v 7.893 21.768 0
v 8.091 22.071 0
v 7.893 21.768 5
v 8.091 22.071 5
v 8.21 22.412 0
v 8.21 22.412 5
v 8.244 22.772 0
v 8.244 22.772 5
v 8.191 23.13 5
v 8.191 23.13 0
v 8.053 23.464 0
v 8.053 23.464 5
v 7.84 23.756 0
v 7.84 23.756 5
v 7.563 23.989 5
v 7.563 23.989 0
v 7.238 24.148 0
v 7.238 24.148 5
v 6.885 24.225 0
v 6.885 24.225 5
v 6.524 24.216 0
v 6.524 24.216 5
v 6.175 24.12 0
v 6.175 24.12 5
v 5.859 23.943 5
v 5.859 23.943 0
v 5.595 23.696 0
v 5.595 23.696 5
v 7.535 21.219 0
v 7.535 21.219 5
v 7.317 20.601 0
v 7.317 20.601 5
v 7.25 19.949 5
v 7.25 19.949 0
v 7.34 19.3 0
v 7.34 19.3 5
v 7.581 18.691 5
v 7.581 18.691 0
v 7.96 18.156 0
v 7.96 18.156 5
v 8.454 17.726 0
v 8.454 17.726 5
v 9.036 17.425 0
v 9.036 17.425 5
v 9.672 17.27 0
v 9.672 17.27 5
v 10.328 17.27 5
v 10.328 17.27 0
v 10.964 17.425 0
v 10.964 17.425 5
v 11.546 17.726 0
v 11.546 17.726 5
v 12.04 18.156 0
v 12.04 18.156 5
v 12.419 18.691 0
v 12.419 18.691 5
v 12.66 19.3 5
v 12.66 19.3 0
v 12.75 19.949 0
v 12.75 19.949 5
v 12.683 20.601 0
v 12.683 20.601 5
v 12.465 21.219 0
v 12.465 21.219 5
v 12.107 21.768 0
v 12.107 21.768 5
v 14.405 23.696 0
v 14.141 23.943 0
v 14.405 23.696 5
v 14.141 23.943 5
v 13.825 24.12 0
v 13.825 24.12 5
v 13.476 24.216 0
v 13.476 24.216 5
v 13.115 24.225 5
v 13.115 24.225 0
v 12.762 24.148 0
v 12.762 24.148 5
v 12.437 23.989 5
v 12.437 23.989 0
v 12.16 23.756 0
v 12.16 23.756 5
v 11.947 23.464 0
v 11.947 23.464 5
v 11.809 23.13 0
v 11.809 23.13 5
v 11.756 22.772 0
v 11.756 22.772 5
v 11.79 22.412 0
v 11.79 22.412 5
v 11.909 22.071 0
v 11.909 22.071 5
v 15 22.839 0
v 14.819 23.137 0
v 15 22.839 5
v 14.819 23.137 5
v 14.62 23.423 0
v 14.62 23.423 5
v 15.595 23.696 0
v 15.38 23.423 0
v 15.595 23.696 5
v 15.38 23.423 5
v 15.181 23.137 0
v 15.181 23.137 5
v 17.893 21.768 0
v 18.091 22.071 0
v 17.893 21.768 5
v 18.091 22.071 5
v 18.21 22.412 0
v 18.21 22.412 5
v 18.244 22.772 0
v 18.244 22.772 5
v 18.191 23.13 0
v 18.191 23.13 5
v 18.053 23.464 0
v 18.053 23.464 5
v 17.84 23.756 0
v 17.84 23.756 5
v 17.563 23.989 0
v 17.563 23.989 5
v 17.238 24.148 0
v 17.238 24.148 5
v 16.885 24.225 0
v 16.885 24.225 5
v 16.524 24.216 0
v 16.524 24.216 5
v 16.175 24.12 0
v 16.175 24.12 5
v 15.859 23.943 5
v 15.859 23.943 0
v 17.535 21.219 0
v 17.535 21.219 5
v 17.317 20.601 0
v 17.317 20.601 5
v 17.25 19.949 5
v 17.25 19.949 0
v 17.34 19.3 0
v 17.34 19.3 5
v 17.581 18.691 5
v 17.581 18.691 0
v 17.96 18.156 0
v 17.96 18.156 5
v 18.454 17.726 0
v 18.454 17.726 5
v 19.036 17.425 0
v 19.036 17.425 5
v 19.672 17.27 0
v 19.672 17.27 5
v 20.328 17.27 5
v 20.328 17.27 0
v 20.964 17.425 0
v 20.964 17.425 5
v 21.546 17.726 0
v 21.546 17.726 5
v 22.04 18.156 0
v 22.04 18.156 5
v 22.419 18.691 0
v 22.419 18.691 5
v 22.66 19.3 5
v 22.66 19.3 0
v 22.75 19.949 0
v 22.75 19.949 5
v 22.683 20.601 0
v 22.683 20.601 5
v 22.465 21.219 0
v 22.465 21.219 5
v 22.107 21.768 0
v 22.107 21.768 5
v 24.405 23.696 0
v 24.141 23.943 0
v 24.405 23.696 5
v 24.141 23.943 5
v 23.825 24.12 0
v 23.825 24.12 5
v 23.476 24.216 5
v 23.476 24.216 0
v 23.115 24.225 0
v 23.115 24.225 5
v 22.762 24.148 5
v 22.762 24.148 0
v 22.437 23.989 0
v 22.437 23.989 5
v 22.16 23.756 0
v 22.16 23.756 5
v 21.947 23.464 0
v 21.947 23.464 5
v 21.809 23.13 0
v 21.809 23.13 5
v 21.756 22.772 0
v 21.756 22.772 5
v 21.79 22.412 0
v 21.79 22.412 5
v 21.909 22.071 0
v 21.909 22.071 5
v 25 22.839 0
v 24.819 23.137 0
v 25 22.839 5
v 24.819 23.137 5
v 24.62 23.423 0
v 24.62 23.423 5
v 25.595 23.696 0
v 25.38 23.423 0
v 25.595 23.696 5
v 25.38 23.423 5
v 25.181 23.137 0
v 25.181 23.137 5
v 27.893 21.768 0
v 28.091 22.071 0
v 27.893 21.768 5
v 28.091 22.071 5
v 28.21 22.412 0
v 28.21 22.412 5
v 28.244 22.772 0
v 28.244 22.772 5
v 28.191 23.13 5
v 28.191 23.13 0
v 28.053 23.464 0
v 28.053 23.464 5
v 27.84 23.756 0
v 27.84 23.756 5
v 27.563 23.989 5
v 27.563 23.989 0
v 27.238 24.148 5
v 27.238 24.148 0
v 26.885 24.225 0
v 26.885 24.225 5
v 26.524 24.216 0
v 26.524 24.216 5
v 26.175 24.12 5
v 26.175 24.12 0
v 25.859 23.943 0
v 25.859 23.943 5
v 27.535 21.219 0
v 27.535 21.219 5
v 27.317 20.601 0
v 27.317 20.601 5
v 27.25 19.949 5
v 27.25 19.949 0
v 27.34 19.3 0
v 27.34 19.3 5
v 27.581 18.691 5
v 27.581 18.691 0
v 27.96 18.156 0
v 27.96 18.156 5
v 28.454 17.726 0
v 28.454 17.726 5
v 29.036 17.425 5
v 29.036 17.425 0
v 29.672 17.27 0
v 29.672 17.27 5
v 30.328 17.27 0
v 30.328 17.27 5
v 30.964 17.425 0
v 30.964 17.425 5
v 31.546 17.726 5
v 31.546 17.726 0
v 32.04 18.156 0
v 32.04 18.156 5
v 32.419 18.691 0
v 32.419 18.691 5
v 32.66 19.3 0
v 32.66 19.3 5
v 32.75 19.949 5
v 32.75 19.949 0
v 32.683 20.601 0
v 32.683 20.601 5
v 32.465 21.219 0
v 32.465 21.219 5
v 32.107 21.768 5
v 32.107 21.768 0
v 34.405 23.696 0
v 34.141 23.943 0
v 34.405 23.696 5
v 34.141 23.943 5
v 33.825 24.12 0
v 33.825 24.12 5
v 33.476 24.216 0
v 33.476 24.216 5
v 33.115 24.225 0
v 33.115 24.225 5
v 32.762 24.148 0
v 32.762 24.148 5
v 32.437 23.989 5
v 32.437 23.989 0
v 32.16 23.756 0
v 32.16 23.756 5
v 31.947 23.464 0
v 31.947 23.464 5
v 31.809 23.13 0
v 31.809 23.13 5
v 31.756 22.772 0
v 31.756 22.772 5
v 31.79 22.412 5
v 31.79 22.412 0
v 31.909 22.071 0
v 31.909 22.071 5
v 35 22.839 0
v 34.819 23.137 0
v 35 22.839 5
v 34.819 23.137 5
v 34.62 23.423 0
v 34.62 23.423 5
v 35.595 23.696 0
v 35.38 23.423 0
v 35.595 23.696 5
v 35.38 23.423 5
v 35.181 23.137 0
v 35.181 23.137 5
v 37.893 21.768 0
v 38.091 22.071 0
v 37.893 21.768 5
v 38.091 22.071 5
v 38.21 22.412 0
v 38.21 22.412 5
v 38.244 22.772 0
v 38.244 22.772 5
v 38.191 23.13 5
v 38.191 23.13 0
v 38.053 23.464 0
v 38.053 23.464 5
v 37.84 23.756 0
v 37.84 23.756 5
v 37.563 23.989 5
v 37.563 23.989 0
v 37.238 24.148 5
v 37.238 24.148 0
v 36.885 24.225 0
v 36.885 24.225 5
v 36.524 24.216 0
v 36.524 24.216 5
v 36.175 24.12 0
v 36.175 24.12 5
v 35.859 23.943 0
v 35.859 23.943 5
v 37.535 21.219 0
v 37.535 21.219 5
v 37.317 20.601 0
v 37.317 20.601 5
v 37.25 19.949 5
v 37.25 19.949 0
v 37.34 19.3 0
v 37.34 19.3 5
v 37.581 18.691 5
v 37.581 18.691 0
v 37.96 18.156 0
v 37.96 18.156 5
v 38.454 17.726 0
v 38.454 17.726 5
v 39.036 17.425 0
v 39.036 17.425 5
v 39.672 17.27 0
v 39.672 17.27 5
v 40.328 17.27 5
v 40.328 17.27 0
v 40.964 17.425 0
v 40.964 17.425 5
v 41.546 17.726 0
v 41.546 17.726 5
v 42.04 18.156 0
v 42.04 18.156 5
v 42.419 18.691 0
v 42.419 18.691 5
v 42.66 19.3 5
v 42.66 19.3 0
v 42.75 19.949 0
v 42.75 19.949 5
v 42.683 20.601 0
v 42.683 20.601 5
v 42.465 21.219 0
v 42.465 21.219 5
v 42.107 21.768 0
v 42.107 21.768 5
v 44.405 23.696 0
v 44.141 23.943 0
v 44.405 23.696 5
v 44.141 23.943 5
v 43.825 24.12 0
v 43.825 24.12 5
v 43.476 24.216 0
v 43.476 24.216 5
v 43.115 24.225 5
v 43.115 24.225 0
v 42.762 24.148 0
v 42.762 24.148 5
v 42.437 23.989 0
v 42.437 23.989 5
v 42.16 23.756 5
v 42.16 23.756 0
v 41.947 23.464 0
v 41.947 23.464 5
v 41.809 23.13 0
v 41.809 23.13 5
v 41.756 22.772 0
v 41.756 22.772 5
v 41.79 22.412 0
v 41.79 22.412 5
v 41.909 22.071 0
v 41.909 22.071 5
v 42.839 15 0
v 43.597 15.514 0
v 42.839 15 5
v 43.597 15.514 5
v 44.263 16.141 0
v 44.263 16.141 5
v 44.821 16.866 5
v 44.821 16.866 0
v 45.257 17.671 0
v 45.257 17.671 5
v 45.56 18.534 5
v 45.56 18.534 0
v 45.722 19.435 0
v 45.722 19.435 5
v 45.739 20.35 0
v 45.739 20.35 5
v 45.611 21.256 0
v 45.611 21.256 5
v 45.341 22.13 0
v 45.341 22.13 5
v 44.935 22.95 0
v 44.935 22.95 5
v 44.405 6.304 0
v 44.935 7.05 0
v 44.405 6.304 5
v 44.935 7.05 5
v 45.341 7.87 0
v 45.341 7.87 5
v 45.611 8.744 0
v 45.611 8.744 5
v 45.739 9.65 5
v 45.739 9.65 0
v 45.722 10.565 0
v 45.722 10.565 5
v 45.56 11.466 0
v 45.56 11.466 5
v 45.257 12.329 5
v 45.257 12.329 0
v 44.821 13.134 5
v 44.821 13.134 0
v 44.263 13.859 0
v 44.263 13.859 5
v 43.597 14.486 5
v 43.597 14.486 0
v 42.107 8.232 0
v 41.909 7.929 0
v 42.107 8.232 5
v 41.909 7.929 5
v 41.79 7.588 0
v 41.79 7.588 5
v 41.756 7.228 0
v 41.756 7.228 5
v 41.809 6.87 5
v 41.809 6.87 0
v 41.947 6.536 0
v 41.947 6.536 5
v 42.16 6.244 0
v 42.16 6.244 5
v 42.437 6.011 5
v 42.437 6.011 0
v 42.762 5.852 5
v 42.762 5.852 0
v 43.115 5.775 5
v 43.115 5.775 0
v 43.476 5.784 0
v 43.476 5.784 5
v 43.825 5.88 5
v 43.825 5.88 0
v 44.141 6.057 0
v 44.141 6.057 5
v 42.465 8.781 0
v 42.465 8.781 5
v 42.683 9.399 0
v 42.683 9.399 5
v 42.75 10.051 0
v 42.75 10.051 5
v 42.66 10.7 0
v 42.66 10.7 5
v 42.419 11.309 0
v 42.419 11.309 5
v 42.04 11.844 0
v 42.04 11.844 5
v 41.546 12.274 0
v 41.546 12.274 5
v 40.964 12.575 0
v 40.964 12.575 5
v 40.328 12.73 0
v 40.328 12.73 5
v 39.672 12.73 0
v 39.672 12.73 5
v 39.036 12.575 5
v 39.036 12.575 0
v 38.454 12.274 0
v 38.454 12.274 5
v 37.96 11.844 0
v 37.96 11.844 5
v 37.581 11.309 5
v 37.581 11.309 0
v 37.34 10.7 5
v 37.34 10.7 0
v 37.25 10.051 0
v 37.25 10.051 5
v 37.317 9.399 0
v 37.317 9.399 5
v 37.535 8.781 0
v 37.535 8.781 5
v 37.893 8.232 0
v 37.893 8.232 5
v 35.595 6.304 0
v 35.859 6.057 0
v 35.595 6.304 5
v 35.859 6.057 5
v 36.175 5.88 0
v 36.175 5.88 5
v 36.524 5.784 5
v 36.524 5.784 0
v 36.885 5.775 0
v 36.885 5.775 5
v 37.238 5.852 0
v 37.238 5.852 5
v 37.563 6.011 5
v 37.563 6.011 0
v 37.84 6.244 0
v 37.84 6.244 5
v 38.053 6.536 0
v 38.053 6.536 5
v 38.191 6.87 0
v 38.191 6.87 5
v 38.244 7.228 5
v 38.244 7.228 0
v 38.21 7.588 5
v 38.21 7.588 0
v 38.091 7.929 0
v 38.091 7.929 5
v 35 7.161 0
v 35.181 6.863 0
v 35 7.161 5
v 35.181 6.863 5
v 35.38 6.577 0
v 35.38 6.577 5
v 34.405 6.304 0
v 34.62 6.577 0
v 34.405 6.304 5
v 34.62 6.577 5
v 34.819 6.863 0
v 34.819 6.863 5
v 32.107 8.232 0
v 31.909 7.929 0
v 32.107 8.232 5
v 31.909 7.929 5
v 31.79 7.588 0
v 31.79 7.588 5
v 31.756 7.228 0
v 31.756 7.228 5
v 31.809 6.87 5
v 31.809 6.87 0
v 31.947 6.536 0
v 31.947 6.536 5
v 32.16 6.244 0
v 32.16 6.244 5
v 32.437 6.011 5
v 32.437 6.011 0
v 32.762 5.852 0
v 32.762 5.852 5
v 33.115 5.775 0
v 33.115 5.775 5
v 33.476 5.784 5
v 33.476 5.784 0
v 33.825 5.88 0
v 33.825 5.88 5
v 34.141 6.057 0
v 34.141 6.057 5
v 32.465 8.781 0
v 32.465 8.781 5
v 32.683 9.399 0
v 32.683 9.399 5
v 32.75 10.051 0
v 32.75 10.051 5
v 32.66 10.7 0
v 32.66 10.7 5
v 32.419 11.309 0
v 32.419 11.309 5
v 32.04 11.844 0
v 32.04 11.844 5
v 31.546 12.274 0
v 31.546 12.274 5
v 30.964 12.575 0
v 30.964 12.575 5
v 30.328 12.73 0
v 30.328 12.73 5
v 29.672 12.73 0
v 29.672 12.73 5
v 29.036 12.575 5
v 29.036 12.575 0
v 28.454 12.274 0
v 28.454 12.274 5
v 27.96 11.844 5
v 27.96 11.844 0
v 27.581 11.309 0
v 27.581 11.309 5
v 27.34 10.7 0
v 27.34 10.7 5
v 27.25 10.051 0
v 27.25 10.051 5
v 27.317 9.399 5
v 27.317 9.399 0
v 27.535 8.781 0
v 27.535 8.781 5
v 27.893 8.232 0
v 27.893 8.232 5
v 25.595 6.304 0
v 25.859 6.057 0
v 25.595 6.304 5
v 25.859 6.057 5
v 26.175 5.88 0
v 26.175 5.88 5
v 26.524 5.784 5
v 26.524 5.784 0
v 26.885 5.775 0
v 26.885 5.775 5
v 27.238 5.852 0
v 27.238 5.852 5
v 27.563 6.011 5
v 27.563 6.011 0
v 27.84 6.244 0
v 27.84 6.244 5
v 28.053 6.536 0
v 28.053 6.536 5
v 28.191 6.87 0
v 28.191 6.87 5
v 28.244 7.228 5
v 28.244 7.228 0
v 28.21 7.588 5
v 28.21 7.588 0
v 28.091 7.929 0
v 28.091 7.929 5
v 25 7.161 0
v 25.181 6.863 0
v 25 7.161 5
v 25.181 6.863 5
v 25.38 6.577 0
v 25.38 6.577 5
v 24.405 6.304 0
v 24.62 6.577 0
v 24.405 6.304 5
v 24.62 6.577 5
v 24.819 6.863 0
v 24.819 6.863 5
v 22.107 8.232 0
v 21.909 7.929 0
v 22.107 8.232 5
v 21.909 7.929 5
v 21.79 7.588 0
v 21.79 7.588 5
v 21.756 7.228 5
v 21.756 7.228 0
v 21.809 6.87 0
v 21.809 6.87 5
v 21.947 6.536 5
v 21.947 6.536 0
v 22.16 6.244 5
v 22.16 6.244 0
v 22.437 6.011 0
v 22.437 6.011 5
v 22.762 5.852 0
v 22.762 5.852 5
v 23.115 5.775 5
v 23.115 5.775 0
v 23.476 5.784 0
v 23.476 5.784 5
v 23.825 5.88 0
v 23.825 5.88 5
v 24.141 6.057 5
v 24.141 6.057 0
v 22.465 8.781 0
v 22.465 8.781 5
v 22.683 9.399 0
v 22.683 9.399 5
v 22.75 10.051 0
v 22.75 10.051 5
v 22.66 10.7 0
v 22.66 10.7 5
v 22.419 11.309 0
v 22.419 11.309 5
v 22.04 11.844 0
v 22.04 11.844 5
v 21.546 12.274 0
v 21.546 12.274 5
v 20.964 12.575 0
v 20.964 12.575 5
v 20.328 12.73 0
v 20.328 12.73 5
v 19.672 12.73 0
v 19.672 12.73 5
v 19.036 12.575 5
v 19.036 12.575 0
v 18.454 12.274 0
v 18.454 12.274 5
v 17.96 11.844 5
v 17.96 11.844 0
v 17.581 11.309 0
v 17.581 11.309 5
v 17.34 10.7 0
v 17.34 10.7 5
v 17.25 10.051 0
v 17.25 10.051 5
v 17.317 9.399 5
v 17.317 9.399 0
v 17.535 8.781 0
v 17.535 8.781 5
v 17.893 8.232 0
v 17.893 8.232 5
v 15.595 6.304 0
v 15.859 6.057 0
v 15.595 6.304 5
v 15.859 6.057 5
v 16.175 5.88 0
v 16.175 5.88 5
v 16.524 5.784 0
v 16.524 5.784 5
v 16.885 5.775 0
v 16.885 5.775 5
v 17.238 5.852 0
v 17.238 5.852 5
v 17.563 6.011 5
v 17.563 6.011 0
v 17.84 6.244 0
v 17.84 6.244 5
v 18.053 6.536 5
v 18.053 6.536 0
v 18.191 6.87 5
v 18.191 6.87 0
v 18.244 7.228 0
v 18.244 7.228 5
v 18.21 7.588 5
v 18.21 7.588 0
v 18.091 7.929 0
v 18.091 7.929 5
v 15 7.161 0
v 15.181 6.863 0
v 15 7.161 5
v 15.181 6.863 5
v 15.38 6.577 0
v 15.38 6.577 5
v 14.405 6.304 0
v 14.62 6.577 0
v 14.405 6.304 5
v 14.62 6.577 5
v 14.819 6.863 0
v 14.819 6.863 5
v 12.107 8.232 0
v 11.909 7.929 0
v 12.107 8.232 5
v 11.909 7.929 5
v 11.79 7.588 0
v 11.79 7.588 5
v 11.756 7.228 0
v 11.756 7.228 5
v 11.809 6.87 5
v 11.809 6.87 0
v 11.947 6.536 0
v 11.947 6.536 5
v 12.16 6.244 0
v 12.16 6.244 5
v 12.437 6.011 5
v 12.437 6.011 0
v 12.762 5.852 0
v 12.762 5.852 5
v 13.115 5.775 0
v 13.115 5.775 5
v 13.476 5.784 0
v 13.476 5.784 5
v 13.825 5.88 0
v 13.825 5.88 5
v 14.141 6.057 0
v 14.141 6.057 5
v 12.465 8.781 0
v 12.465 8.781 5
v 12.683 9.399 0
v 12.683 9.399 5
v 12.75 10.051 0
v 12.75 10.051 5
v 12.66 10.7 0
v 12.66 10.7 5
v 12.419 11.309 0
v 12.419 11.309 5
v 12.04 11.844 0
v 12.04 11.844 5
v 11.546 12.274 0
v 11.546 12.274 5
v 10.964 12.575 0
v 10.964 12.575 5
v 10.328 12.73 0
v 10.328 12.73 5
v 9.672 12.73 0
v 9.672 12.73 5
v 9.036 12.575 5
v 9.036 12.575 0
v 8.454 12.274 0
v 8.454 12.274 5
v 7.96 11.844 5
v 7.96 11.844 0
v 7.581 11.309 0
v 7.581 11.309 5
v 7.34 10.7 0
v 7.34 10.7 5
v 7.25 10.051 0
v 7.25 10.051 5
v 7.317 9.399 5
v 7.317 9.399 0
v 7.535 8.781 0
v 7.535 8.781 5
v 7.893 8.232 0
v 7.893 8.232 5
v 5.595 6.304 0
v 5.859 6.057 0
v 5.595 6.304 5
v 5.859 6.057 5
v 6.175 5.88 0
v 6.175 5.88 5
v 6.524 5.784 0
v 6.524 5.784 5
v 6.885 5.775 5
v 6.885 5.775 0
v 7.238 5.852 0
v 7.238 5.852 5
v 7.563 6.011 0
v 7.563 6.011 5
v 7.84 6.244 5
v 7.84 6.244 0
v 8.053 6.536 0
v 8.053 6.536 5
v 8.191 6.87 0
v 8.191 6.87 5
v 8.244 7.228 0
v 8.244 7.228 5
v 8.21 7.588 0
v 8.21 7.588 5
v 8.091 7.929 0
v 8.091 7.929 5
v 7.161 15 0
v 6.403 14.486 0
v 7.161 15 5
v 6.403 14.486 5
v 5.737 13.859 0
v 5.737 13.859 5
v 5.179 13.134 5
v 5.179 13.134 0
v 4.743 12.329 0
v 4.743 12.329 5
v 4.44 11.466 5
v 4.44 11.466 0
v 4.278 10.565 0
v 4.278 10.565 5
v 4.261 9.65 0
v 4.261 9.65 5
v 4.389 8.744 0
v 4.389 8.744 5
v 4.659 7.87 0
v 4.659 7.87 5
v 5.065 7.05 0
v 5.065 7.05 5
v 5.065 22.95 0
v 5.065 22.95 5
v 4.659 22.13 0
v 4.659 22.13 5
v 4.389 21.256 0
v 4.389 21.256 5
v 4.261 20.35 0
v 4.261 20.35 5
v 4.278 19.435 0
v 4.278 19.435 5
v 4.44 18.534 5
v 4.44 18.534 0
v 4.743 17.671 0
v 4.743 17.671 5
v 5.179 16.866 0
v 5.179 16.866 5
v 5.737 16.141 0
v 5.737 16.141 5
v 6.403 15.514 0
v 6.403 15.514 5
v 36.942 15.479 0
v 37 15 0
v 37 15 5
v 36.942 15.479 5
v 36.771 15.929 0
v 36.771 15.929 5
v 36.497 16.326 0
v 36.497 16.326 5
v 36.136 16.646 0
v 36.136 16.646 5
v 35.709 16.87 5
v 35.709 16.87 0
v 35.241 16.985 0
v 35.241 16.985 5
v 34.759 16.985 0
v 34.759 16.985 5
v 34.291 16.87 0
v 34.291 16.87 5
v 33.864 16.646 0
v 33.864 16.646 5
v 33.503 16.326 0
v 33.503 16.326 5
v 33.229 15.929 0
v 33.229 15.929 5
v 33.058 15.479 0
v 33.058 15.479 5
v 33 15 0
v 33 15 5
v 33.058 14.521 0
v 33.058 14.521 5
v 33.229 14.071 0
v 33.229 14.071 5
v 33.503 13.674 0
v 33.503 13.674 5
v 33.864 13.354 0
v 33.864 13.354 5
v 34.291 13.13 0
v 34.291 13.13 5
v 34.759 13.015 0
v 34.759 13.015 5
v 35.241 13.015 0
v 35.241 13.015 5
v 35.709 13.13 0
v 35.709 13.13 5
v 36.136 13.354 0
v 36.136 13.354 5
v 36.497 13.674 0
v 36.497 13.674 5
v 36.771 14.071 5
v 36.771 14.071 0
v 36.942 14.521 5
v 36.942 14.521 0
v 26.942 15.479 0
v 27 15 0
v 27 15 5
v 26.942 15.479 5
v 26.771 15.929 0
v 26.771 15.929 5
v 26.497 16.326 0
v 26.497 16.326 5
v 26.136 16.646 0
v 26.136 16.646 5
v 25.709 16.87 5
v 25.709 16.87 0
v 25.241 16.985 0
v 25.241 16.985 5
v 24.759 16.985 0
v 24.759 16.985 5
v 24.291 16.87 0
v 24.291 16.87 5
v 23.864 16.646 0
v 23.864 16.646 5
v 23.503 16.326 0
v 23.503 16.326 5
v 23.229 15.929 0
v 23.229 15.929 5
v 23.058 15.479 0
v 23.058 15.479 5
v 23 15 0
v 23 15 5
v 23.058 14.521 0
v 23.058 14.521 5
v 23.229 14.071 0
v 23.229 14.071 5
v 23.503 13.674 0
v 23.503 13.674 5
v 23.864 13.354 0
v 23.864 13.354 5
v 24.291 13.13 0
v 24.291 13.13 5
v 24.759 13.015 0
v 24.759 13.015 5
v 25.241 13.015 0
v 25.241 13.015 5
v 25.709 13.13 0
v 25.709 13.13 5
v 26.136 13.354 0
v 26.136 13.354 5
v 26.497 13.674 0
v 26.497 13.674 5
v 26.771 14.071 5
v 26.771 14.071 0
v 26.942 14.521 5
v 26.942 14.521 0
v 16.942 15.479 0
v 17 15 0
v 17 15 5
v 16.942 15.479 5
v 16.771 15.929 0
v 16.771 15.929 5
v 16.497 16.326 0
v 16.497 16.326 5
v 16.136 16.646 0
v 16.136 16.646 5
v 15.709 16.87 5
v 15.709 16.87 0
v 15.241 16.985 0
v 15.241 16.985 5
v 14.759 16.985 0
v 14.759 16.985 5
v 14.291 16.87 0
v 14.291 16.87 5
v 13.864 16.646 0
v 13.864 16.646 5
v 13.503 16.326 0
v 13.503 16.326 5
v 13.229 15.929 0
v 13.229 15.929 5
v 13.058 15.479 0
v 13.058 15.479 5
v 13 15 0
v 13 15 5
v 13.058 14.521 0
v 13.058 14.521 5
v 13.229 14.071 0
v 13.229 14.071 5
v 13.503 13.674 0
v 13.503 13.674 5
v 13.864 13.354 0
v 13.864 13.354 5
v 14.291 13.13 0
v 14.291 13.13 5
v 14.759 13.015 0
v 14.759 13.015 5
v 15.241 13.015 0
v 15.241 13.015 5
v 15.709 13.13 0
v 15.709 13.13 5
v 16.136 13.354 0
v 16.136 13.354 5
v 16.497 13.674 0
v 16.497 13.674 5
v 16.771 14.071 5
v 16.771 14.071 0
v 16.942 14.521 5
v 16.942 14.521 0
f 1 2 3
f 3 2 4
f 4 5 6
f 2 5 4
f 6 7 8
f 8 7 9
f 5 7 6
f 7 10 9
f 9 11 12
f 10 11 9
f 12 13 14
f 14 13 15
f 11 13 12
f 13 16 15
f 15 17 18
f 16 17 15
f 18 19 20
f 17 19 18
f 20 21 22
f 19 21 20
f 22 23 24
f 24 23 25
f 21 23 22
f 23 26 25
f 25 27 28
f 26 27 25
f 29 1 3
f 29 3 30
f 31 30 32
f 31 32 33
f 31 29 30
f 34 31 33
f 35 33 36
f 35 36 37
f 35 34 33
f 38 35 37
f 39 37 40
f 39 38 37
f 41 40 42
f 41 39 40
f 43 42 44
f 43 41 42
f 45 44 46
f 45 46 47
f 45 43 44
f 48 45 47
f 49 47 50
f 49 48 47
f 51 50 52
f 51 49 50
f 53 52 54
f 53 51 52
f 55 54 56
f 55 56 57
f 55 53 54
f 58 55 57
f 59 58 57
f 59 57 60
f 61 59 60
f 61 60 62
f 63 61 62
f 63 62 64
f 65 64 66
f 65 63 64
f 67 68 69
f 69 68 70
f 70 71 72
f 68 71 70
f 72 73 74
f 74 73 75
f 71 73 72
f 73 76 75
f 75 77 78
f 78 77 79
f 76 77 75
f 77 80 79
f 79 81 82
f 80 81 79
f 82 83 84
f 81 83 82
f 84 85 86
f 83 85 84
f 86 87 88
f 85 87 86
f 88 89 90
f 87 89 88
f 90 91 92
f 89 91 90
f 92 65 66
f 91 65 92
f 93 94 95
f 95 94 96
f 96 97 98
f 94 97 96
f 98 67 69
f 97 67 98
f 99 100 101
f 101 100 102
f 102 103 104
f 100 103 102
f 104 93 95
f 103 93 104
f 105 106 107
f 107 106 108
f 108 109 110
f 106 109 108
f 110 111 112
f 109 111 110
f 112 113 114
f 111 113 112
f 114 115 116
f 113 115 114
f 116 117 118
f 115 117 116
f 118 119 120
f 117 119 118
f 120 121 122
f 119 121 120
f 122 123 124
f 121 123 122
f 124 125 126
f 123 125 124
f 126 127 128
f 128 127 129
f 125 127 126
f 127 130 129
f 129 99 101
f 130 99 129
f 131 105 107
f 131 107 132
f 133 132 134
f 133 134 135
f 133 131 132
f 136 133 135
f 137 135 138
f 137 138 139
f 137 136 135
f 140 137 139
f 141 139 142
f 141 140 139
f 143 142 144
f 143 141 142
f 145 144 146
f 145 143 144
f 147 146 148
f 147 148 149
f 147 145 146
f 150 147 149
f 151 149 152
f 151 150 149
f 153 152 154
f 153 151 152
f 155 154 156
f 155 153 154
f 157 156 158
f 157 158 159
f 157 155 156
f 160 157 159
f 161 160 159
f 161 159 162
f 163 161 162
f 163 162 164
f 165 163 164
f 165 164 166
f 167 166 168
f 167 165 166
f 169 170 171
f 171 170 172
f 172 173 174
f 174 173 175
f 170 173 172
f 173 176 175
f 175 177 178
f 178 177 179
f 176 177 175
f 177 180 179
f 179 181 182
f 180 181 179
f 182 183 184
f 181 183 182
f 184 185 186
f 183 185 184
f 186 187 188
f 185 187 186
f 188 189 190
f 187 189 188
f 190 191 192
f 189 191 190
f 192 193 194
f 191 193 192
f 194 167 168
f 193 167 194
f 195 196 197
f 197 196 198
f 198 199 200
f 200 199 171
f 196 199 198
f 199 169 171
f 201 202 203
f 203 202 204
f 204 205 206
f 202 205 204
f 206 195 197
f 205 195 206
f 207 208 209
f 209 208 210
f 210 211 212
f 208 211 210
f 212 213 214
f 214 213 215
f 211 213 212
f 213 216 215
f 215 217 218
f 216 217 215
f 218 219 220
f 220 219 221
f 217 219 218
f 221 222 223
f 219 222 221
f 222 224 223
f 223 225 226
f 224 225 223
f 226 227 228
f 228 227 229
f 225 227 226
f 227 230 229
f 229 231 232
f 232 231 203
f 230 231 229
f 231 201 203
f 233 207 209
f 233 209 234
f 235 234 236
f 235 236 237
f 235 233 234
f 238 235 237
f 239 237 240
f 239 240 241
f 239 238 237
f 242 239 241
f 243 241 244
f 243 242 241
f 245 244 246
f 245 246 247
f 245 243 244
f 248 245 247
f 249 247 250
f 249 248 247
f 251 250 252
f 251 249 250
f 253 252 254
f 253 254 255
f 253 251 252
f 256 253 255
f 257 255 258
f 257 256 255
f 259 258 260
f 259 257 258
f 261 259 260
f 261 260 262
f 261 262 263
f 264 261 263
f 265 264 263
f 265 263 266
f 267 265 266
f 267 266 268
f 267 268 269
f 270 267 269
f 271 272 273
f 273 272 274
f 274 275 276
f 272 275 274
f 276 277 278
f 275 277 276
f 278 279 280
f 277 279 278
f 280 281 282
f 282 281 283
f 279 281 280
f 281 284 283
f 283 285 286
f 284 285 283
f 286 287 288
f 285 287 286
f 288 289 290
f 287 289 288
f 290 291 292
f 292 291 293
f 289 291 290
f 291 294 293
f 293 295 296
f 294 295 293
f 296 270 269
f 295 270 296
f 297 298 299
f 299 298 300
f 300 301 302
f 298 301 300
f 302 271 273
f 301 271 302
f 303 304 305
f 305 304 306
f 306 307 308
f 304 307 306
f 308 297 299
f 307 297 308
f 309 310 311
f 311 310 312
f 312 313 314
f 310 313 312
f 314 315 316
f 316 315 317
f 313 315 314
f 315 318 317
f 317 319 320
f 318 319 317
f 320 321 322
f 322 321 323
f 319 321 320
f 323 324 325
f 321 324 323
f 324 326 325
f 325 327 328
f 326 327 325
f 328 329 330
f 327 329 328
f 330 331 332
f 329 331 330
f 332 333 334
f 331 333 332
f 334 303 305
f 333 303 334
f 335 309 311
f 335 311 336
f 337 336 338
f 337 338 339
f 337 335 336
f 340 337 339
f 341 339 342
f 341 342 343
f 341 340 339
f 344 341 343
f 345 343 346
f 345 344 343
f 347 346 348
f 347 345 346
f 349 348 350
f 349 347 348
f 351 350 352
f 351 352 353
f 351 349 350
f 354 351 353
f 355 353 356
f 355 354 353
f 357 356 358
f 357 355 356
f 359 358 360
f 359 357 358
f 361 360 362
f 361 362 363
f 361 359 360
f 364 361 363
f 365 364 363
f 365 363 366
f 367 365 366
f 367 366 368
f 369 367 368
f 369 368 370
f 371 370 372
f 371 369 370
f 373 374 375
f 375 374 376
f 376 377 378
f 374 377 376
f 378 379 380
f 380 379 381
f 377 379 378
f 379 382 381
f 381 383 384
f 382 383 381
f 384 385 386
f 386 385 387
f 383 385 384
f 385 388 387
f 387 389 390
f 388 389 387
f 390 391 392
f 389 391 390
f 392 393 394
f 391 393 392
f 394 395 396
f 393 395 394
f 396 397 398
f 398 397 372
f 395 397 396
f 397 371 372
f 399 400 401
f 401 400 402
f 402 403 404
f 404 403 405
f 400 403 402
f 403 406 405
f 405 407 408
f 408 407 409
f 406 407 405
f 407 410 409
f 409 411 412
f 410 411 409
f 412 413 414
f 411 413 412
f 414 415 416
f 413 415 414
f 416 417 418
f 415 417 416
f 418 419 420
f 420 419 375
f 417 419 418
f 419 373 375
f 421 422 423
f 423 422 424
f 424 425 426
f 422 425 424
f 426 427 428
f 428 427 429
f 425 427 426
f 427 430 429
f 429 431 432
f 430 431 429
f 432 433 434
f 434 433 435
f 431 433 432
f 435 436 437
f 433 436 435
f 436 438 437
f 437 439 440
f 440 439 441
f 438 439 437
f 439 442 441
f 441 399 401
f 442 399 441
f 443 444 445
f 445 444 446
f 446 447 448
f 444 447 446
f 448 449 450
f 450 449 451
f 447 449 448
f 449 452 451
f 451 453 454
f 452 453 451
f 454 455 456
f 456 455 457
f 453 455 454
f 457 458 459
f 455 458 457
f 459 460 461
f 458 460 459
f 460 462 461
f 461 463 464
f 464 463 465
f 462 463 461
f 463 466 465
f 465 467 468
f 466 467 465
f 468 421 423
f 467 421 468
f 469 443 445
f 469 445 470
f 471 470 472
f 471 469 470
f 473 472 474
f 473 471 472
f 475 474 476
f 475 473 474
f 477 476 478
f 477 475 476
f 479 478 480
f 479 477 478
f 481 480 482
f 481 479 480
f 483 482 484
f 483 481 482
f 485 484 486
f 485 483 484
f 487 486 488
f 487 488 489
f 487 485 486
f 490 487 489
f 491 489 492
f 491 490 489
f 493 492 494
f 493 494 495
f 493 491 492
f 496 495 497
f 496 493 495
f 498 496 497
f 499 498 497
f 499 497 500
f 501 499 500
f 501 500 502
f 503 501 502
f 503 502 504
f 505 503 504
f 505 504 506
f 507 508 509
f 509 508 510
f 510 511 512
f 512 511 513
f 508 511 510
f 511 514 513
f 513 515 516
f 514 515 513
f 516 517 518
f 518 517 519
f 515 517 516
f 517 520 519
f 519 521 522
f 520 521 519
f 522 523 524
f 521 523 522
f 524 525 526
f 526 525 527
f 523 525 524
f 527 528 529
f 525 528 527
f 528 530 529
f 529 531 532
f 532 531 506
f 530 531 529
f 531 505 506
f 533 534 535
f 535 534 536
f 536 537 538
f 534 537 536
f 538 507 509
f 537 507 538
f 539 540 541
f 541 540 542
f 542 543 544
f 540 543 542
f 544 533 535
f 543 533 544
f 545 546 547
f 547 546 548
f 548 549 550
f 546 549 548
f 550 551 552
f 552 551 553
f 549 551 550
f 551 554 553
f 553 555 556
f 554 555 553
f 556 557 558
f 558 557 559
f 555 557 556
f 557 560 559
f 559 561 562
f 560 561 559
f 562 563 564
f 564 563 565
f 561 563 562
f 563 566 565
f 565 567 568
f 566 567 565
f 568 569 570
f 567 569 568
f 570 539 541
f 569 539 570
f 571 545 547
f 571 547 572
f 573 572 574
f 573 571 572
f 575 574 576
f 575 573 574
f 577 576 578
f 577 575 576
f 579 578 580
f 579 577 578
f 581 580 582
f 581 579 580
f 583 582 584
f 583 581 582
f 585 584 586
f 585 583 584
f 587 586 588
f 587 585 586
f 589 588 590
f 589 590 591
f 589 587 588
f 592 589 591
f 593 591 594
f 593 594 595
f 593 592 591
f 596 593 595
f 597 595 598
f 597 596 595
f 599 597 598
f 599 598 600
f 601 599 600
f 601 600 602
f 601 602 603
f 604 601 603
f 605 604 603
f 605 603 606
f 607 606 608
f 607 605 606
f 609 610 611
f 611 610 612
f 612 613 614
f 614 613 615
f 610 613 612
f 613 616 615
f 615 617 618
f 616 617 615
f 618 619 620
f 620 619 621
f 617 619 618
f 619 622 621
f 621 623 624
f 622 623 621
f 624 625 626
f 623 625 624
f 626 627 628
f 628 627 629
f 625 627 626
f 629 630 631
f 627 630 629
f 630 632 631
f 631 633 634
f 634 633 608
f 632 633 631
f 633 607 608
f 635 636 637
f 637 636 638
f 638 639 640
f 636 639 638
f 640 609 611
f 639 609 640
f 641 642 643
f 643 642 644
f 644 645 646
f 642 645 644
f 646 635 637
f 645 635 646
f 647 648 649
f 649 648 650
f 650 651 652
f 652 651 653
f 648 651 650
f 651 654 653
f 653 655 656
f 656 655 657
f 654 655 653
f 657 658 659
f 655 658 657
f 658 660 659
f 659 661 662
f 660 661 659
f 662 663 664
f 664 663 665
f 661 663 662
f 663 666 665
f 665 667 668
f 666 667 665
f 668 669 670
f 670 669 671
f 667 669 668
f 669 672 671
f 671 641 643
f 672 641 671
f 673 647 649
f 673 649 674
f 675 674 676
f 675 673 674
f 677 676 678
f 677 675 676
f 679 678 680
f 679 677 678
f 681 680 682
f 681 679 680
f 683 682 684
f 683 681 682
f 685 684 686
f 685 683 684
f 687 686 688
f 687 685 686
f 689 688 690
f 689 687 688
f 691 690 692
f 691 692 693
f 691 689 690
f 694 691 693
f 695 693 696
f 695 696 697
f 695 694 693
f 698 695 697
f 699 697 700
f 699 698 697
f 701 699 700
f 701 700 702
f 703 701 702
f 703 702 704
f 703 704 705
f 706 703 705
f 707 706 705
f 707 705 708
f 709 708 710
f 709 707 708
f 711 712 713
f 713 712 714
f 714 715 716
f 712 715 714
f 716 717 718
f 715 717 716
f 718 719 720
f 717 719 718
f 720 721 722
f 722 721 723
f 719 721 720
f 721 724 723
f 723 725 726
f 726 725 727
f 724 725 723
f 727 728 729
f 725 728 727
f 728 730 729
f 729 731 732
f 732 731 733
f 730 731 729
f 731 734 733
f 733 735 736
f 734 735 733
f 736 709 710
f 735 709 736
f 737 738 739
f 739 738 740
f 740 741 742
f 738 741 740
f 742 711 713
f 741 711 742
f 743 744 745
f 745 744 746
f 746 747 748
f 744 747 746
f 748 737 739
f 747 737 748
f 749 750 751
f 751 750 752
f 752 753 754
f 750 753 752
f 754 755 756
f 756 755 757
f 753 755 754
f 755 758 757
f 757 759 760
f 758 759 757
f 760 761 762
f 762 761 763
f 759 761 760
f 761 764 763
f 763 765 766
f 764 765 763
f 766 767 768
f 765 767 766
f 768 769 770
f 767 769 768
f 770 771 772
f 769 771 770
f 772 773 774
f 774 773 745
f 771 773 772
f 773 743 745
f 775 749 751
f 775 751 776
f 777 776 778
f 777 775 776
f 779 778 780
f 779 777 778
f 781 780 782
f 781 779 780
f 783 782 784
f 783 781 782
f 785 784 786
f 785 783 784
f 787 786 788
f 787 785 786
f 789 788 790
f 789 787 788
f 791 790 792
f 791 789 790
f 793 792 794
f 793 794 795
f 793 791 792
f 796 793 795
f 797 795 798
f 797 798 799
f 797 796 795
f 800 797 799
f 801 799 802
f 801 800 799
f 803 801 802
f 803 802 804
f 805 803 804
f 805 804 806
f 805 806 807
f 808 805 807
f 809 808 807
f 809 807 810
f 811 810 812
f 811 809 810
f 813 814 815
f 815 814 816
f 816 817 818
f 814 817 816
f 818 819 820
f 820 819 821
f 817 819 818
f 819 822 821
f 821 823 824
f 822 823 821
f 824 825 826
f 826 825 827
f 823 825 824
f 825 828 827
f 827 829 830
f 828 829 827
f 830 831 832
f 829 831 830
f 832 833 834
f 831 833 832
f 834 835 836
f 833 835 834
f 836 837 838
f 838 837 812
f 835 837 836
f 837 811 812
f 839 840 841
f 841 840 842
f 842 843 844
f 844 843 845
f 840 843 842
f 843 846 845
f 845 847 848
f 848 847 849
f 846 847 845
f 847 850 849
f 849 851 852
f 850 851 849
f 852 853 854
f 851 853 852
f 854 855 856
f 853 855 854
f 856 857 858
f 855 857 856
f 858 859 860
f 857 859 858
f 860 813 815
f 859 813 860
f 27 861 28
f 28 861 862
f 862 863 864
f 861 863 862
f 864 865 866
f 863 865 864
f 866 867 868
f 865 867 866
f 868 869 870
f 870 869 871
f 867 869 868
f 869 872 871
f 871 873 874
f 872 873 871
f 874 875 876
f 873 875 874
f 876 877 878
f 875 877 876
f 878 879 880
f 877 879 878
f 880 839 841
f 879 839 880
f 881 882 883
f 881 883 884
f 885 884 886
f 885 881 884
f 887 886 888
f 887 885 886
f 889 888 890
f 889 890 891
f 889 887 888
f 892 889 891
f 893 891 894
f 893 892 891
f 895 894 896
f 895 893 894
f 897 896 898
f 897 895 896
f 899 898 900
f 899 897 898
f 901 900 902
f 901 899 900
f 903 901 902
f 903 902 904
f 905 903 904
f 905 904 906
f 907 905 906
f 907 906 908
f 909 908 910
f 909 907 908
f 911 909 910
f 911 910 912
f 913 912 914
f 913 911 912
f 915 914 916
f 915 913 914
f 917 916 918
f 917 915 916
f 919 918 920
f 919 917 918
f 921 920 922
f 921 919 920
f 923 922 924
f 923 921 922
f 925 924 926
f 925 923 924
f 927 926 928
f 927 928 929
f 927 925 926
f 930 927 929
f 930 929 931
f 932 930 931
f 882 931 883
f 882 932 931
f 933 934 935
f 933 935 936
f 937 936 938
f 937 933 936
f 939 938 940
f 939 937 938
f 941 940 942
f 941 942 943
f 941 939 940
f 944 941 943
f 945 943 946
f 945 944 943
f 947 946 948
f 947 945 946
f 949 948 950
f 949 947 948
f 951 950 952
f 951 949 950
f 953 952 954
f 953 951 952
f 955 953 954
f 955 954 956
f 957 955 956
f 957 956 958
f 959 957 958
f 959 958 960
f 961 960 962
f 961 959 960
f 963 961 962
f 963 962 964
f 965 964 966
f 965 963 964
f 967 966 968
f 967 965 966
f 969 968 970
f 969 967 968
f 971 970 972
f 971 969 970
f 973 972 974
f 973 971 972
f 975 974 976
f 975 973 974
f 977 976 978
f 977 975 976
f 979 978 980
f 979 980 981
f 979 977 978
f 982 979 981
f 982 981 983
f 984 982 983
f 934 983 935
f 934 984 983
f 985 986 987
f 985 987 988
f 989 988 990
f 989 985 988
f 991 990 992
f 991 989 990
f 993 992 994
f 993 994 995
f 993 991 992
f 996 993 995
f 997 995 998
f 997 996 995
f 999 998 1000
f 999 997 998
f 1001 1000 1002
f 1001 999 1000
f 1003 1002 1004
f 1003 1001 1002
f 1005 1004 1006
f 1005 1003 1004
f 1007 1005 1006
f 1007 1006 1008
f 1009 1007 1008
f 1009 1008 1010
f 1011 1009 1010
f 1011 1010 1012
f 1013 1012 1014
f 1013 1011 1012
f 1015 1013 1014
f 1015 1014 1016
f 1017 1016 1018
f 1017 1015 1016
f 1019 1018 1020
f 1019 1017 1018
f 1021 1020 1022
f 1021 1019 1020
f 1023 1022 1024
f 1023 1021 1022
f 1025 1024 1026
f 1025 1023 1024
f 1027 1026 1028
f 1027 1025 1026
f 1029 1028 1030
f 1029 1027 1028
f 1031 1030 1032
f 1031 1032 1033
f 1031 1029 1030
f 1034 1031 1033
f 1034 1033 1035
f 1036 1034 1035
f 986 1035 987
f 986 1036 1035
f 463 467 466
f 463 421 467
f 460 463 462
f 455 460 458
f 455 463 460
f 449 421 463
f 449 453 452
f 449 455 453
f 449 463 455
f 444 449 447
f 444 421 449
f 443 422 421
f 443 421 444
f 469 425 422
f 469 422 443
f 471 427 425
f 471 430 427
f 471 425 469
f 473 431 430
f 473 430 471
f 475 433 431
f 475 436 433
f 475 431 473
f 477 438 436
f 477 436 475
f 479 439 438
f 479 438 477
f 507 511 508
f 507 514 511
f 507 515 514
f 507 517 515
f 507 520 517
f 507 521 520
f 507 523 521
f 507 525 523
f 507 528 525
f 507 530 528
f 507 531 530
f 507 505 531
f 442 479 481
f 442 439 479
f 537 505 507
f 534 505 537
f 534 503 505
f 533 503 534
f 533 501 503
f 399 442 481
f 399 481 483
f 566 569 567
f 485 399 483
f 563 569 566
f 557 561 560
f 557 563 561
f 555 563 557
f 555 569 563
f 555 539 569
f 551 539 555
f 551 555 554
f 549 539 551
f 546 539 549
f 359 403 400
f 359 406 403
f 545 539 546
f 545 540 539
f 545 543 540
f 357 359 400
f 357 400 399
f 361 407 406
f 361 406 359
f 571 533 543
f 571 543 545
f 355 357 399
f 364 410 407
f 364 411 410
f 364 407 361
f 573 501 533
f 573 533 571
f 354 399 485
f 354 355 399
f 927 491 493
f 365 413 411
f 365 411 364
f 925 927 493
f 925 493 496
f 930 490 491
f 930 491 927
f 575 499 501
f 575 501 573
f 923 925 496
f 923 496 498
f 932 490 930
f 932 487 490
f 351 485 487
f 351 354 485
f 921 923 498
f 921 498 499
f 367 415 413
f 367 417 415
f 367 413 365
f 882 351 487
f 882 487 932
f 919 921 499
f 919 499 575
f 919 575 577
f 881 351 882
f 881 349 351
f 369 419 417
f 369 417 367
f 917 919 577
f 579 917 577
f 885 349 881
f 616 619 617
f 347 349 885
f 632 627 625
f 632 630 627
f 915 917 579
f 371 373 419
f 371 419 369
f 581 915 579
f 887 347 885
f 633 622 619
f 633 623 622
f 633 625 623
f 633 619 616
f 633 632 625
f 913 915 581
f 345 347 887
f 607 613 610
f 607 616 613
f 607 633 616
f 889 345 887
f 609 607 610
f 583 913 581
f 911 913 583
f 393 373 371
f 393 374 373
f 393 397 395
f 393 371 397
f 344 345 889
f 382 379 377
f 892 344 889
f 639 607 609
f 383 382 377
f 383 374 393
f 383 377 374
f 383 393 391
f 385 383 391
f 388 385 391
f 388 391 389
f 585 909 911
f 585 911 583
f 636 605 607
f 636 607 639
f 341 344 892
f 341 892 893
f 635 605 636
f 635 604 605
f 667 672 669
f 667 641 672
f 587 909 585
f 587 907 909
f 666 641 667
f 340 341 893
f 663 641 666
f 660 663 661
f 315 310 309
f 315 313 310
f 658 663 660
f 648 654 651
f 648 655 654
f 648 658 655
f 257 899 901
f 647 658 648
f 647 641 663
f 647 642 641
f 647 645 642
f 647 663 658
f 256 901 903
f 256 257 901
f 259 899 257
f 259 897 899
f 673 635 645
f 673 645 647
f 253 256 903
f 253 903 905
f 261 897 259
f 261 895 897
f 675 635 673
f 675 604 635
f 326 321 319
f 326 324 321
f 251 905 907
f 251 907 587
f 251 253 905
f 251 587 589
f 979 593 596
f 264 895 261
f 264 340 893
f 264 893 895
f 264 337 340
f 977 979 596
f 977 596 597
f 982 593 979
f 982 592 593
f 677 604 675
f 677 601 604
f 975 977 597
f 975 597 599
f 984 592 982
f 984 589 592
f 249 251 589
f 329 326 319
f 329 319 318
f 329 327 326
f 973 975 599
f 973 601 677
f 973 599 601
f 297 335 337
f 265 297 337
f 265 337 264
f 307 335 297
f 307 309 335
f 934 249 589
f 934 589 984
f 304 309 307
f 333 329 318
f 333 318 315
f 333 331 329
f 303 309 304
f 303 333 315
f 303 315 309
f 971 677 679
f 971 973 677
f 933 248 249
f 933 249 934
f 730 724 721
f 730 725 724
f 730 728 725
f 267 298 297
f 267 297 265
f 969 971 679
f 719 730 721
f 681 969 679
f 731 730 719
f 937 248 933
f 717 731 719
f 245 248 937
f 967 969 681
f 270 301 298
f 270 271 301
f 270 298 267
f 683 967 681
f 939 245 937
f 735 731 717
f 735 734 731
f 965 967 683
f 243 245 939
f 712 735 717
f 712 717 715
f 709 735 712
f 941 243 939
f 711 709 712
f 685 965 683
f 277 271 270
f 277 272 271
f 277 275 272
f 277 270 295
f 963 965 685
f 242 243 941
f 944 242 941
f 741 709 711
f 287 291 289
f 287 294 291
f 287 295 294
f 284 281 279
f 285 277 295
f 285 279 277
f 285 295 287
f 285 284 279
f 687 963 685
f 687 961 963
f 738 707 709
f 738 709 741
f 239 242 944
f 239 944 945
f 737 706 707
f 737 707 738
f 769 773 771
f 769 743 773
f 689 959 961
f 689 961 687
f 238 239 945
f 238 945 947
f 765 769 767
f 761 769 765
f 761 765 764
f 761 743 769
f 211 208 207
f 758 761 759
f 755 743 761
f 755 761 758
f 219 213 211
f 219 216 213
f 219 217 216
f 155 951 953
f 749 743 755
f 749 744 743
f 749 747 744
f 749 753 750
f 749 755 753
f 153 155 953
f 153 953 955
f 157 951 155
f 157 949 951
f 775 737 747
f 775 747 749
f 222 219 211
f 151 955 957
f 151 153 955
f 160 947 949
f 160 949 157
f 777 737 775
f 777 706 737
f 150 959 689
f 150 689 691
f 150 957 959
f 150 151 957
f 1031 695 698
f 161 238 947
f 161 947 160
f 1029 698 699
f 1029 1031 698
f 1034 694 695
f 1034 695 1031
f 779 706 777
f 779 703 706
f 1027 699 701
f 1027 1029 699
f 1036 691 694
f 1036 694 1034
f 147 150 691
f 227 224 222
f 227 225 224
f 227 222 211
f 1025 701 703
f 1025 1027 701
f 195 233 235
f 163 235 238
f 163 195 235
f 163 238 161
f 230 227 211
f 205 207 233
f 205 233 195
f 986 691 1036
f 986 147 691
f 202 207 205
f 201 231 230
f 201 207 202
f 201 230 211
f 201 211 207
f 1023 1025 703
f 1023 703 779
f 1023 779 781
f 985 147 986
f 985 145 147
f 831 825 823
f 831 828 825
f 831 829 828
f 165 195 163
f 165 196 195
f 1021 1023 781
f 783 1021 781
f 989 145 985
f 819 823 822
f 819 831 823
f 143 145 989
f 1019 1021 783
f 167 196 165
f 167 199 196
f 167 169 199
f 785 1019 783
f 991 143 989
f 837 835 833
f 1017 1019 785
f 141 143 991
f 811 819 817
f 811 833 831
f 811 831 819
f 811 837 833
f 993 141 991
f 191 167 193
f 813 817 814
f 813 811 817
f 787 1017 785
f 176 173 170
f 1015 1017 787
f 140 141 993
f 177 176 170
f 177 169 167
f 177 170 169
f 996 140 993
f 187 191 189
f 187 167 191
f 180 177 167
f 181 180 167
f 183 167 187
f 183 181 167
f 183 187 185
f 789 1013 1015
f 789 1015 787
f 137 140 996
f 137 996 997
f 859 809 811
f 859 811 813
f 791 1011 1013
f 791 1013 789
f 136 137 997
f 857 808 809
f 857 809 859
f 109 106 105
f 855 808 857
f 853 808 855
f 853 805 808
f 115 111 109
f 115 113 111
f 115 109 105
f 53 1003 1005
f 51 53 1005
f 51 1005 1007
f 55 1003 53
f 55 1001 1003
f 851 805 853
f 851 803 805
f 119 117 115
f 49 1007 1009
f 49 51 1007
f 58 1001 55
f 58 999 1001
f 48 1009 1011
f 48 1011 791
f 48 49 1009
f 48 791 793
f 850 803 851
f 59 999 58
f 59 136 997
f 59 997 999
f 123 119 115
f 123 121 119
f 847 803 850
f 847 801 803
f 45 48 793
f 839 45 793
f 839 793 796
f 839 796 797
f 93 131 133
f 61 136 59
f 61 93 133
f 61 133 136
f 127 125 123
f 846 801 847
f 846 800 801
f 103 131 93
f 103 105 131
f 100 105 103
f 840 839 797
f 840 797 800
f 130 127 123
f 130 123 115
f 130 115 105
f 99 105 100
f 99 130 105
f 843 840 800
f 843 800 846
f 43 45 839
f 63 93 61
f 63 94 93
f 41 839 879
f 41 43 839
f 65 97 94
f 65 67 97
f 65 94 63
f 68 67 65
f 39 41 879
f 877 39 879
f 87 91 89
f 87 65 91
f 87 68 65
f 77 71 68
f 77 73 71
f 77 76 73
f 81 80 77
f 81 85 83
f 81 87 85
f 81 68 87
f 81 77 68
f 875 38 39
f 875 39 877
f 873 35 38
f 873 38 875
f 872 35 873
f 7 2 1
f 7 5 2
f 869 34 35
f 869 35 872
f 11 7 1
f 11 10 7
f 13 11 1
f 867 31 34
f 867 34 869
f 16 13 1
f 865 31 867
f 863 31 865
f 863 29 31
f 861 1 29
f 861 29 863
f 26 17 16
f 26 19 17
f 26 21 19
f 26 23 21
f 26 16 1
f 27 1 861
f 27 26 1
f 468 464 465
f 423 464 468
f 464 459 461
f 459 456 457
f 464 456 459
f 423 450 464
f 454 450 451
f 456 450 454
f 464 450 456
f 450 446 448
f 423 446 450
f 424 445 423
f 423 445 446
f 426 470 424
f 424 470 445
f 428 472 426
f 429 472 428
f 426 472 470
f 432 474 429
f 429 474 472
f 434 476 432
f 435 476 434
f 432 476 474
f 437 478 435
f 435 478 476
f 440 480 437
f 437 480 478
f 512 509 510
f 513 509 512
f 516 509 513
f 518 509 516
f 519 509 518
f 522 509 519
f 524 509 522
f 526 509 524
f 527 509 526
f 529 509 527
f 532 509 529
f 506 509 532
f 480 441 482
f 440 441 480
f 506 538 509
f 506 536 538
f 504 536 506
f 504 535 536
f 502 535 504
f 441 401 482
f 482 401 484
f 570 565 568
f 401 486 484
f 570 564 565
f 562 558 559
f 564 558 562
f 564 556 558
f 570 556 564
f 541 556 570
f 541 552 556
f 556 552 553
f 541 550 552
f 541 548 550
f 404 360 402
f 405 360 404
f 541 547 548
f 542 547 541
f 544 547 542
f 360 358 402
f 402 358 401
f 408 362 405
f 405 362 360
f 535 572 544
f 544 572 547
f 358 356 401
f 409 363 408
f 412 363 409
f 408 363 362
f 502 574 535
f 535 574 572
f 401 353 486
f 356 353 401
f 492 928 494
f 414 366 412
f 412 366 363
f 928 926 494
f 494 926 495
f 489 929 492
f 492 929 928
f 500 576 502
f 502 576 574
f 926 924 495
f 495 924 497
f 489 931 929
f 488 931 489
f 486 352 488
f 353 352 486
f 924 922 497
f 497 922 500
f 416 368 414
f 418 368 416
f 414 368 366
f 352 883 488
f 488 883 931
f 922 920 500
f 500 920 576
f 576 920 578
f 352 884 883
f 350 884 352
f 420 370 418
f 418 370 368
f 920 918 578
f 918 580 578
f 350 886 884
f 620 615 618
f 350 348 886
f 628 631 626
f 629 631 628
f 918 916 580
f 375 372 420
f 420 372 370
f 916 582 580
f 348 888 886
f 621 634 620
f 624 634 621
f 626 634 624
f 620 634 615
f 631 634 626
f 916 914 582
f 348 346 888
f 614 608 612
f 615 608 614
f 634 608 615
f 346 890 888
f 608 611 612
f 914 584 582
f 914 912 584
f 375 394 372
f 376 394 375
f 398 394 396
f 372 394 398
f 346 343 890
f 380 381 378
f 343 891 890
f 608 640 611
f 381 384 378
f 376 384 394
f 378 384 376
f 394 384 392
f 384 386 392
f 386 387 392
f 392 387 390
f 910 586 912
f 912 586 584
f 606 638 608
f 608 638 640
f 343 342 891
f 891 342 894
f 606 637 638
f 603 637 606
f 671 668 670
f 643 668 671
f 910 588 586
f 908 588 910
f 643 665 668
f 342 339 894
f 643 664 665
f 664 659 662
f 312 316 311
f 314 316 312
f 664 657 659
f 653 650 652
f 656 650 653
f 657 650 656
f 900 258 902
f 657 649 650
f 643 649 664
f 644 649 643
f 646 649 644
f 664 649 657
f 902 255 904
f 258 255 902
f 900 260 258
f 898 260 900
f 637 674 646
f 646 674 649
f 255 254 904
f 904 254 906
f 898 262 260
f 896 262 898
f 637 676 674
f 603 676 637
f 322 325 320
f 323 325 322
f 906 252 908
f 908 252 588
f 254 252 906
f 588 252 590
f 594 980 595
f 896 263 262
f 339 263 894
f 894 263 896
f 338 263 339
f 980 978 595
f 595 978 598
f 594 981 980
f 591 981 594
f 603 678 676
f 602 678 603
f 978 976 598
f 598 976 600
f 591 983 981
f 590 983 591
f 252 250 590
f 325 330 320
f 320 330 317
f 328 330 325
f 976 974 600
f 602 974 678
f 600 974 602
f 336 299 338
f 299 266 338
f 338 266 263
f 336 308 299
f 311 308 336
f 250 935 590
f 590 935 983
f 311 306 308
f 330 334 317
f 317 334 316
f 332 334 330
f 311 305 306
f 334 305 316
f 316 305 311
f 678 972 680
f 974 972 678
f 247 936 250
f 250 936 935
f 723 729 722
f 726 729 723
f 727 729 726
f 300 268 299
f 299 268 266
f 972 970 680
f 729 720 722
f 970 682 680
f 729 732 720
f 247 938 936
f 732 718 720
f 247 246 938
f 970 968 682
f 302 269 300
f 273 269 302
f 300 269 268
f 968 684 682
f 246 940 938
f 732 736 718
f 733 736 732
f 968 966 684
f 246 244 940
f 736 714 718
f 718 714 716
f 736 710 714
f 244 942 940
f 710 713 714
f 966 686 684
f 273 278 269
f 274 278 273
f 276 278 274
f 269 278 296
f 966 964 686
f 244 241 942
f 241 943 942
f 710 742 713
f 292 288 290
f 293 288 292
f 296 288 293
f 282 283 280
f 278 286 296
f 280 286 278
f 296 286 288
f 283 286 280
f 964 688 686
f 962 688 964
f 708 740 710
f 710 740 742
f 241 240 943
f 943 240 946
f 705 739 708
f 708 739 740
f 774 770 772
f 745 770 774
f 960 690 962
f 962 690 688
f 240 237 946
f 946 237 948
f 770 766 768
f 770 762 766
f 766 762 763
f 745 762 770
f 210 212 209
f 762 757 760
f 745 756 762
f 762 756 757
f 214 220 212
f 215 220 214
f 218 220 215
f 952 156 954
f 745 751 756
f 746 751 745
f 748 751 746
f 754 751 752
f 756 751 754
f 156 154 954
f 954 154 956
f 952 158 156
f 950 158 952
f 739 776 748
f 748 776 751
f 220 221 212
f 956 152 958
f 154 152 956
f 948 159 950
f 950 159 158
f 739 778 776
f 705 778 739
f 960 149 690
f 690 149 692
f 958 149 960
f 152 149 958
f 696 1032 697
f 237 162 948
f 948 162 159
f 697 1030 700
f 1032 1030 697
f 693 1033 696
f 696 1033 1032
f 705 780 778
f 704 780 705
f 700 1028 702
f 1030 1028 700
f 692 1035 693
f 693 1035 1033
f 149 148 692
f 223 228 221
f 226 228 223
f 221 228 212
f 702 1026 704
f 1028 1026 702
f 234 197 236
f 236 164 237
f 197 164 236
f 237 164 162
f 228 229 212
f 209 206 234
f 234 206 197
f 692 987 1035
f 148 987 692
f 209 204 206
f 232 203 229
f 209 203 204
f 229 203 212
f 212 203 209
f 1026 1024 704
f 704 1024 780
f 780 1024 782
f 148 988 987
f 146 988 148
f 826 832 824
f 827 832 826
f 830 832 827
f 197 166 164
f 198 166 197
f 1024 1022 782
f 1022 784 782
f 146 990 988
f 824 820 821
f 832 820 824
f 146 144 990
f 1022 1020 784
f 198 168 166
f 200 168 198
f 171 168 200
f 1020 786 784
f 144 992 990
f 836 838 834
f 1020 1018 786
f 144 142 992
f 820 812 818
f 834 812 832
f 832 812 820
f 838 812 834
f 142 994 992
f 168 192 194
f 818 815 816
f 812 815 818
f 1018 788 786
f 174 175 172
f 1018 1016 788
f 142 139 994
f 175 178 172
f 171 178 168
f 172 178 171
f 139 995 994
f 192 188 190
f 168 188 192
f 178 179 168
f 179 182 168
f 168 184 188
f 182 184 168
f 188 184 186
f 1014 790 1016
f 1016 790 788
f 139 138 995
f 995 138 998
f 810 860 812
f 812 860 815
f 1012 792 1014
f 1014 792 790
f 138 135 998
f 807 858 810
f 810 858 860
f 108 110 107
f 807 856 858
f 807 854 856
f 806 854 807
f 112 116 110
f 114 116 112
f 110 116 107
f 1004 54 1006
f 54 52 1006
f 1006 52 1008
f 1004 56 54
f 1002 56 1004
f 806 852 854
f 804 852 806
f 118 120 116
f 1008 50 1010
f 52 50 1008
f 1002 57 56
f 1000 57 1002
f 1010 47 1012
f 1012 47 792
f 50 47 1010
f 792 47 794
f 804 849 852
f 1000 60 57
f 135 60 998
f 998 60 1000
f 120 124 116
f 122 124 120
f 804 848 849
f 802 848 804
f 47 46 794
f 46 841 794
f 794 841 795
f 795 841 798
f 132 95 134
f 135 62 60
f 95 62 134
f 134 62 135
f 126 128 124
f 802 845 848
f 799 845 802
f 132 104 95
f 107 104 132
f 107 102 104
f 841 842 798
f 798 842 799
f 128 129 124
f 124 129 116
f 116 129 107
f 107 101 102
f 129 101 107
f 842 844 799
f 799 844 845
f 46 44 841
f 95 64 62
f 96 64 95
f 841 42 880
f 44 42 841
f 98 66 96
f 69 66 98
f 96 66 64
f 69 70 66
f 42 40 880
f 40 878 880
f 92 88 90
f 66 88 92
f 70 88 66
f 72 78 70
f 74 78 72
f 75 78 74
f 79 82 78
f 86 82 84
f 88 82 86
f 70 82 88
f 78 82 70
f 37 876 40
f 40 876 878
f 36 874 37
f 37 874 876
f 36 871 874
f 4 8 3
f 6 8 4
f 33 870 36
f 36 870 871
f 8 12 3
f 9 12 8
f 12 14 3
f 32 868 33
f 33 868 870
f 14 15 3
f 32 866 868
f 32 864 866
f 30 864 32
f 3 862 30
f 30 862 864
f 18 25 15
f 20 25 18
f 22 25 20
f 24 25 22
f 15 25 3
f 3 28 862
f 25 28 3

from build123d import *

# Parameters (mm, degrees)
SKETCH_R  = 2
PAD_DEPTH = 5


with BuildPart() as part:
    # Sketch → Pad (new body)
    with BuildSketch(Plane.XY):
        with BuildLine():
            ThreePointArc((7.893378, 21.767666), (10, 17.25), (12.106622, 21.767666))
            ThreePointArc((14.404756, 23.696029), (12.291507, 23.880914), (12.106622, 21.767666))
            ThreePointArc((15, 22.839454), (14.721841, 23.281267), (14.404756, 23.696029))
            ThreePointArc((15.595244, 23.696029), (15.278159, 23.281267), (15, 22.839454))
            ThreePointArc((17.893378, 21.767666), (17.708493, 23.880914), (15.595244, 23.696029))
            ThreePointArc((17.893378, 21.767666), (20, 17.25), (22.106622, 21.767666))
            ThreePointArc((24.404756, 23.696029), (22.291507, 23.880914), (22.106622, 21.767666))
            ThreePointArc((25, 22.839454), (24.721841, 23.281267), (24.404756, 23.696029))
            ThreePointArc((25.595244, 23.696029), (25.278159, 23.281267), (25, 22.839454))
            ThreePointArc((27.893378, 21.767666), (27.708493, 23.880914), (25.595244, 23.696029))
            ThreePointArc((27.893378, 21.767666), (30, 17.25), (32.106622, 21.767666))
            ThreePointArc((34.404756, 23.696029), (32.291507, 23.880914), (32.106622, 21.767666))
            ThreePointArc((35, 22.839454), (34.721841, 23.281267), (34.404756, 23.696029))
            ThreePointArc((35.595244, 23.696029), (35.278159, 23.281267), (35, 22.839454))
            ThreePointArc((37.893378, 21.767666), (37.708493, 23.880914), (35.595244, 23.696029))
            ThreePointArc((37.893378, 21.767666), (40, 17.25), (42.106622, 21.767666))
            ThreePointArc((44.404756, 23.696029), (42.291507, 23.880914), (42.106622, 21.767666))
            ThreePointArc((42.839454, 15), (45.659052, 18.98136), (44.404756, 23.696029))
            ThreePointArc((44.404756, 6.303971), (45.659052, 11.01864), (42.839454, 15))
            ThreePointArc((42.106622, 8.232334), (42.291507, 6.119086), (44.404756, 6.303971))
            ThreePointArc((42.106622, 8.232334), (40, 12.75), (37.893378, 8.232334))
            ThreePointArc((35.595244, 6.303971), (37.708493, 6.119086), (37.893378, 8.232334))
            ThreePointArc((35, 7.160546), (35.278159, 6.718733), (35.595244, 6.303971))
            ThreePointArc((34.404756, 6.303971), (34.721841, 6.718733), (35, 7.160546))
            ThreePointArc((32.106622, 8.232334), (32.291507, 6.119086), (34.404756, 6.303971))
            ThreePointArc((32.106622, 8.232334), (30, 12.75), (27.893378, 8.232334))
            ThreePointArc((25.595244, 6.303971), (27.708493, 6.119086), (27.893378, 8.232334))
            ThreePointArc((25, 7.160546), (25.278159, 6.718733), (25.595244, 6.303971))
            ThreePointArc((24.404756, 6.303971), (24.721841, 6.718733), (25, 7.160546))
            ThreePointArc((22.106622, 8.232334), (22.291507, 6.119086), (24.404756, 6.303971))
            ThreePointArc((22.106622, 8.232334), (20, 12.75), (17.893378, 8.232334))
            ThreePointArc((15.595244, 6.303971), (17.708493, 6.119086), (17.893378, 8.232334))
            ThreePointArc((15, 7.160546), (15.278159, 6.718733), (15.595244, 6.303971))
            ThreePointArc((14.404756, 6.303971), (14.721841, 6.718733), (15, 7.160546))
            ThreePointArc((12.106622, 8.232334), (12.291507, 6.119086), (14.404756, 6.303971))
            ThreePointArc((12.106622, 8.232334), (10, 12.75), (7.893378, 8.232334))
            ThreePointArc((5.595244, 6.303971), (7.708493, 6.119086), (7.893378, 8.232334))
            ThreePointArc((7.160546, 15), (4.340948, 11.01864), (5.595244, 6.303971))
            ThreePointArc((5.595244, 23.696029), (4.340948, 18.98136), (7.160546, 15))
            ThreePointArc((7.893378, 21.767666), (7.708493, 23.880914), (5.595244, 23.696029))
        make_face()
        with Locations((15, 15)):
            Circle(SKETCH_R, mode=Mode.SUBTRACT)
        with Locations((25, 15)):
            Circle(SKETCH_R, mode=Mode.SUBTRACT)
        with Locations((35, 15)):
            Circle(SKETCH_R, mode=Mode.SUBTRACT)
    extrude(amount=PAD_DEPTH)


solid = part.part
